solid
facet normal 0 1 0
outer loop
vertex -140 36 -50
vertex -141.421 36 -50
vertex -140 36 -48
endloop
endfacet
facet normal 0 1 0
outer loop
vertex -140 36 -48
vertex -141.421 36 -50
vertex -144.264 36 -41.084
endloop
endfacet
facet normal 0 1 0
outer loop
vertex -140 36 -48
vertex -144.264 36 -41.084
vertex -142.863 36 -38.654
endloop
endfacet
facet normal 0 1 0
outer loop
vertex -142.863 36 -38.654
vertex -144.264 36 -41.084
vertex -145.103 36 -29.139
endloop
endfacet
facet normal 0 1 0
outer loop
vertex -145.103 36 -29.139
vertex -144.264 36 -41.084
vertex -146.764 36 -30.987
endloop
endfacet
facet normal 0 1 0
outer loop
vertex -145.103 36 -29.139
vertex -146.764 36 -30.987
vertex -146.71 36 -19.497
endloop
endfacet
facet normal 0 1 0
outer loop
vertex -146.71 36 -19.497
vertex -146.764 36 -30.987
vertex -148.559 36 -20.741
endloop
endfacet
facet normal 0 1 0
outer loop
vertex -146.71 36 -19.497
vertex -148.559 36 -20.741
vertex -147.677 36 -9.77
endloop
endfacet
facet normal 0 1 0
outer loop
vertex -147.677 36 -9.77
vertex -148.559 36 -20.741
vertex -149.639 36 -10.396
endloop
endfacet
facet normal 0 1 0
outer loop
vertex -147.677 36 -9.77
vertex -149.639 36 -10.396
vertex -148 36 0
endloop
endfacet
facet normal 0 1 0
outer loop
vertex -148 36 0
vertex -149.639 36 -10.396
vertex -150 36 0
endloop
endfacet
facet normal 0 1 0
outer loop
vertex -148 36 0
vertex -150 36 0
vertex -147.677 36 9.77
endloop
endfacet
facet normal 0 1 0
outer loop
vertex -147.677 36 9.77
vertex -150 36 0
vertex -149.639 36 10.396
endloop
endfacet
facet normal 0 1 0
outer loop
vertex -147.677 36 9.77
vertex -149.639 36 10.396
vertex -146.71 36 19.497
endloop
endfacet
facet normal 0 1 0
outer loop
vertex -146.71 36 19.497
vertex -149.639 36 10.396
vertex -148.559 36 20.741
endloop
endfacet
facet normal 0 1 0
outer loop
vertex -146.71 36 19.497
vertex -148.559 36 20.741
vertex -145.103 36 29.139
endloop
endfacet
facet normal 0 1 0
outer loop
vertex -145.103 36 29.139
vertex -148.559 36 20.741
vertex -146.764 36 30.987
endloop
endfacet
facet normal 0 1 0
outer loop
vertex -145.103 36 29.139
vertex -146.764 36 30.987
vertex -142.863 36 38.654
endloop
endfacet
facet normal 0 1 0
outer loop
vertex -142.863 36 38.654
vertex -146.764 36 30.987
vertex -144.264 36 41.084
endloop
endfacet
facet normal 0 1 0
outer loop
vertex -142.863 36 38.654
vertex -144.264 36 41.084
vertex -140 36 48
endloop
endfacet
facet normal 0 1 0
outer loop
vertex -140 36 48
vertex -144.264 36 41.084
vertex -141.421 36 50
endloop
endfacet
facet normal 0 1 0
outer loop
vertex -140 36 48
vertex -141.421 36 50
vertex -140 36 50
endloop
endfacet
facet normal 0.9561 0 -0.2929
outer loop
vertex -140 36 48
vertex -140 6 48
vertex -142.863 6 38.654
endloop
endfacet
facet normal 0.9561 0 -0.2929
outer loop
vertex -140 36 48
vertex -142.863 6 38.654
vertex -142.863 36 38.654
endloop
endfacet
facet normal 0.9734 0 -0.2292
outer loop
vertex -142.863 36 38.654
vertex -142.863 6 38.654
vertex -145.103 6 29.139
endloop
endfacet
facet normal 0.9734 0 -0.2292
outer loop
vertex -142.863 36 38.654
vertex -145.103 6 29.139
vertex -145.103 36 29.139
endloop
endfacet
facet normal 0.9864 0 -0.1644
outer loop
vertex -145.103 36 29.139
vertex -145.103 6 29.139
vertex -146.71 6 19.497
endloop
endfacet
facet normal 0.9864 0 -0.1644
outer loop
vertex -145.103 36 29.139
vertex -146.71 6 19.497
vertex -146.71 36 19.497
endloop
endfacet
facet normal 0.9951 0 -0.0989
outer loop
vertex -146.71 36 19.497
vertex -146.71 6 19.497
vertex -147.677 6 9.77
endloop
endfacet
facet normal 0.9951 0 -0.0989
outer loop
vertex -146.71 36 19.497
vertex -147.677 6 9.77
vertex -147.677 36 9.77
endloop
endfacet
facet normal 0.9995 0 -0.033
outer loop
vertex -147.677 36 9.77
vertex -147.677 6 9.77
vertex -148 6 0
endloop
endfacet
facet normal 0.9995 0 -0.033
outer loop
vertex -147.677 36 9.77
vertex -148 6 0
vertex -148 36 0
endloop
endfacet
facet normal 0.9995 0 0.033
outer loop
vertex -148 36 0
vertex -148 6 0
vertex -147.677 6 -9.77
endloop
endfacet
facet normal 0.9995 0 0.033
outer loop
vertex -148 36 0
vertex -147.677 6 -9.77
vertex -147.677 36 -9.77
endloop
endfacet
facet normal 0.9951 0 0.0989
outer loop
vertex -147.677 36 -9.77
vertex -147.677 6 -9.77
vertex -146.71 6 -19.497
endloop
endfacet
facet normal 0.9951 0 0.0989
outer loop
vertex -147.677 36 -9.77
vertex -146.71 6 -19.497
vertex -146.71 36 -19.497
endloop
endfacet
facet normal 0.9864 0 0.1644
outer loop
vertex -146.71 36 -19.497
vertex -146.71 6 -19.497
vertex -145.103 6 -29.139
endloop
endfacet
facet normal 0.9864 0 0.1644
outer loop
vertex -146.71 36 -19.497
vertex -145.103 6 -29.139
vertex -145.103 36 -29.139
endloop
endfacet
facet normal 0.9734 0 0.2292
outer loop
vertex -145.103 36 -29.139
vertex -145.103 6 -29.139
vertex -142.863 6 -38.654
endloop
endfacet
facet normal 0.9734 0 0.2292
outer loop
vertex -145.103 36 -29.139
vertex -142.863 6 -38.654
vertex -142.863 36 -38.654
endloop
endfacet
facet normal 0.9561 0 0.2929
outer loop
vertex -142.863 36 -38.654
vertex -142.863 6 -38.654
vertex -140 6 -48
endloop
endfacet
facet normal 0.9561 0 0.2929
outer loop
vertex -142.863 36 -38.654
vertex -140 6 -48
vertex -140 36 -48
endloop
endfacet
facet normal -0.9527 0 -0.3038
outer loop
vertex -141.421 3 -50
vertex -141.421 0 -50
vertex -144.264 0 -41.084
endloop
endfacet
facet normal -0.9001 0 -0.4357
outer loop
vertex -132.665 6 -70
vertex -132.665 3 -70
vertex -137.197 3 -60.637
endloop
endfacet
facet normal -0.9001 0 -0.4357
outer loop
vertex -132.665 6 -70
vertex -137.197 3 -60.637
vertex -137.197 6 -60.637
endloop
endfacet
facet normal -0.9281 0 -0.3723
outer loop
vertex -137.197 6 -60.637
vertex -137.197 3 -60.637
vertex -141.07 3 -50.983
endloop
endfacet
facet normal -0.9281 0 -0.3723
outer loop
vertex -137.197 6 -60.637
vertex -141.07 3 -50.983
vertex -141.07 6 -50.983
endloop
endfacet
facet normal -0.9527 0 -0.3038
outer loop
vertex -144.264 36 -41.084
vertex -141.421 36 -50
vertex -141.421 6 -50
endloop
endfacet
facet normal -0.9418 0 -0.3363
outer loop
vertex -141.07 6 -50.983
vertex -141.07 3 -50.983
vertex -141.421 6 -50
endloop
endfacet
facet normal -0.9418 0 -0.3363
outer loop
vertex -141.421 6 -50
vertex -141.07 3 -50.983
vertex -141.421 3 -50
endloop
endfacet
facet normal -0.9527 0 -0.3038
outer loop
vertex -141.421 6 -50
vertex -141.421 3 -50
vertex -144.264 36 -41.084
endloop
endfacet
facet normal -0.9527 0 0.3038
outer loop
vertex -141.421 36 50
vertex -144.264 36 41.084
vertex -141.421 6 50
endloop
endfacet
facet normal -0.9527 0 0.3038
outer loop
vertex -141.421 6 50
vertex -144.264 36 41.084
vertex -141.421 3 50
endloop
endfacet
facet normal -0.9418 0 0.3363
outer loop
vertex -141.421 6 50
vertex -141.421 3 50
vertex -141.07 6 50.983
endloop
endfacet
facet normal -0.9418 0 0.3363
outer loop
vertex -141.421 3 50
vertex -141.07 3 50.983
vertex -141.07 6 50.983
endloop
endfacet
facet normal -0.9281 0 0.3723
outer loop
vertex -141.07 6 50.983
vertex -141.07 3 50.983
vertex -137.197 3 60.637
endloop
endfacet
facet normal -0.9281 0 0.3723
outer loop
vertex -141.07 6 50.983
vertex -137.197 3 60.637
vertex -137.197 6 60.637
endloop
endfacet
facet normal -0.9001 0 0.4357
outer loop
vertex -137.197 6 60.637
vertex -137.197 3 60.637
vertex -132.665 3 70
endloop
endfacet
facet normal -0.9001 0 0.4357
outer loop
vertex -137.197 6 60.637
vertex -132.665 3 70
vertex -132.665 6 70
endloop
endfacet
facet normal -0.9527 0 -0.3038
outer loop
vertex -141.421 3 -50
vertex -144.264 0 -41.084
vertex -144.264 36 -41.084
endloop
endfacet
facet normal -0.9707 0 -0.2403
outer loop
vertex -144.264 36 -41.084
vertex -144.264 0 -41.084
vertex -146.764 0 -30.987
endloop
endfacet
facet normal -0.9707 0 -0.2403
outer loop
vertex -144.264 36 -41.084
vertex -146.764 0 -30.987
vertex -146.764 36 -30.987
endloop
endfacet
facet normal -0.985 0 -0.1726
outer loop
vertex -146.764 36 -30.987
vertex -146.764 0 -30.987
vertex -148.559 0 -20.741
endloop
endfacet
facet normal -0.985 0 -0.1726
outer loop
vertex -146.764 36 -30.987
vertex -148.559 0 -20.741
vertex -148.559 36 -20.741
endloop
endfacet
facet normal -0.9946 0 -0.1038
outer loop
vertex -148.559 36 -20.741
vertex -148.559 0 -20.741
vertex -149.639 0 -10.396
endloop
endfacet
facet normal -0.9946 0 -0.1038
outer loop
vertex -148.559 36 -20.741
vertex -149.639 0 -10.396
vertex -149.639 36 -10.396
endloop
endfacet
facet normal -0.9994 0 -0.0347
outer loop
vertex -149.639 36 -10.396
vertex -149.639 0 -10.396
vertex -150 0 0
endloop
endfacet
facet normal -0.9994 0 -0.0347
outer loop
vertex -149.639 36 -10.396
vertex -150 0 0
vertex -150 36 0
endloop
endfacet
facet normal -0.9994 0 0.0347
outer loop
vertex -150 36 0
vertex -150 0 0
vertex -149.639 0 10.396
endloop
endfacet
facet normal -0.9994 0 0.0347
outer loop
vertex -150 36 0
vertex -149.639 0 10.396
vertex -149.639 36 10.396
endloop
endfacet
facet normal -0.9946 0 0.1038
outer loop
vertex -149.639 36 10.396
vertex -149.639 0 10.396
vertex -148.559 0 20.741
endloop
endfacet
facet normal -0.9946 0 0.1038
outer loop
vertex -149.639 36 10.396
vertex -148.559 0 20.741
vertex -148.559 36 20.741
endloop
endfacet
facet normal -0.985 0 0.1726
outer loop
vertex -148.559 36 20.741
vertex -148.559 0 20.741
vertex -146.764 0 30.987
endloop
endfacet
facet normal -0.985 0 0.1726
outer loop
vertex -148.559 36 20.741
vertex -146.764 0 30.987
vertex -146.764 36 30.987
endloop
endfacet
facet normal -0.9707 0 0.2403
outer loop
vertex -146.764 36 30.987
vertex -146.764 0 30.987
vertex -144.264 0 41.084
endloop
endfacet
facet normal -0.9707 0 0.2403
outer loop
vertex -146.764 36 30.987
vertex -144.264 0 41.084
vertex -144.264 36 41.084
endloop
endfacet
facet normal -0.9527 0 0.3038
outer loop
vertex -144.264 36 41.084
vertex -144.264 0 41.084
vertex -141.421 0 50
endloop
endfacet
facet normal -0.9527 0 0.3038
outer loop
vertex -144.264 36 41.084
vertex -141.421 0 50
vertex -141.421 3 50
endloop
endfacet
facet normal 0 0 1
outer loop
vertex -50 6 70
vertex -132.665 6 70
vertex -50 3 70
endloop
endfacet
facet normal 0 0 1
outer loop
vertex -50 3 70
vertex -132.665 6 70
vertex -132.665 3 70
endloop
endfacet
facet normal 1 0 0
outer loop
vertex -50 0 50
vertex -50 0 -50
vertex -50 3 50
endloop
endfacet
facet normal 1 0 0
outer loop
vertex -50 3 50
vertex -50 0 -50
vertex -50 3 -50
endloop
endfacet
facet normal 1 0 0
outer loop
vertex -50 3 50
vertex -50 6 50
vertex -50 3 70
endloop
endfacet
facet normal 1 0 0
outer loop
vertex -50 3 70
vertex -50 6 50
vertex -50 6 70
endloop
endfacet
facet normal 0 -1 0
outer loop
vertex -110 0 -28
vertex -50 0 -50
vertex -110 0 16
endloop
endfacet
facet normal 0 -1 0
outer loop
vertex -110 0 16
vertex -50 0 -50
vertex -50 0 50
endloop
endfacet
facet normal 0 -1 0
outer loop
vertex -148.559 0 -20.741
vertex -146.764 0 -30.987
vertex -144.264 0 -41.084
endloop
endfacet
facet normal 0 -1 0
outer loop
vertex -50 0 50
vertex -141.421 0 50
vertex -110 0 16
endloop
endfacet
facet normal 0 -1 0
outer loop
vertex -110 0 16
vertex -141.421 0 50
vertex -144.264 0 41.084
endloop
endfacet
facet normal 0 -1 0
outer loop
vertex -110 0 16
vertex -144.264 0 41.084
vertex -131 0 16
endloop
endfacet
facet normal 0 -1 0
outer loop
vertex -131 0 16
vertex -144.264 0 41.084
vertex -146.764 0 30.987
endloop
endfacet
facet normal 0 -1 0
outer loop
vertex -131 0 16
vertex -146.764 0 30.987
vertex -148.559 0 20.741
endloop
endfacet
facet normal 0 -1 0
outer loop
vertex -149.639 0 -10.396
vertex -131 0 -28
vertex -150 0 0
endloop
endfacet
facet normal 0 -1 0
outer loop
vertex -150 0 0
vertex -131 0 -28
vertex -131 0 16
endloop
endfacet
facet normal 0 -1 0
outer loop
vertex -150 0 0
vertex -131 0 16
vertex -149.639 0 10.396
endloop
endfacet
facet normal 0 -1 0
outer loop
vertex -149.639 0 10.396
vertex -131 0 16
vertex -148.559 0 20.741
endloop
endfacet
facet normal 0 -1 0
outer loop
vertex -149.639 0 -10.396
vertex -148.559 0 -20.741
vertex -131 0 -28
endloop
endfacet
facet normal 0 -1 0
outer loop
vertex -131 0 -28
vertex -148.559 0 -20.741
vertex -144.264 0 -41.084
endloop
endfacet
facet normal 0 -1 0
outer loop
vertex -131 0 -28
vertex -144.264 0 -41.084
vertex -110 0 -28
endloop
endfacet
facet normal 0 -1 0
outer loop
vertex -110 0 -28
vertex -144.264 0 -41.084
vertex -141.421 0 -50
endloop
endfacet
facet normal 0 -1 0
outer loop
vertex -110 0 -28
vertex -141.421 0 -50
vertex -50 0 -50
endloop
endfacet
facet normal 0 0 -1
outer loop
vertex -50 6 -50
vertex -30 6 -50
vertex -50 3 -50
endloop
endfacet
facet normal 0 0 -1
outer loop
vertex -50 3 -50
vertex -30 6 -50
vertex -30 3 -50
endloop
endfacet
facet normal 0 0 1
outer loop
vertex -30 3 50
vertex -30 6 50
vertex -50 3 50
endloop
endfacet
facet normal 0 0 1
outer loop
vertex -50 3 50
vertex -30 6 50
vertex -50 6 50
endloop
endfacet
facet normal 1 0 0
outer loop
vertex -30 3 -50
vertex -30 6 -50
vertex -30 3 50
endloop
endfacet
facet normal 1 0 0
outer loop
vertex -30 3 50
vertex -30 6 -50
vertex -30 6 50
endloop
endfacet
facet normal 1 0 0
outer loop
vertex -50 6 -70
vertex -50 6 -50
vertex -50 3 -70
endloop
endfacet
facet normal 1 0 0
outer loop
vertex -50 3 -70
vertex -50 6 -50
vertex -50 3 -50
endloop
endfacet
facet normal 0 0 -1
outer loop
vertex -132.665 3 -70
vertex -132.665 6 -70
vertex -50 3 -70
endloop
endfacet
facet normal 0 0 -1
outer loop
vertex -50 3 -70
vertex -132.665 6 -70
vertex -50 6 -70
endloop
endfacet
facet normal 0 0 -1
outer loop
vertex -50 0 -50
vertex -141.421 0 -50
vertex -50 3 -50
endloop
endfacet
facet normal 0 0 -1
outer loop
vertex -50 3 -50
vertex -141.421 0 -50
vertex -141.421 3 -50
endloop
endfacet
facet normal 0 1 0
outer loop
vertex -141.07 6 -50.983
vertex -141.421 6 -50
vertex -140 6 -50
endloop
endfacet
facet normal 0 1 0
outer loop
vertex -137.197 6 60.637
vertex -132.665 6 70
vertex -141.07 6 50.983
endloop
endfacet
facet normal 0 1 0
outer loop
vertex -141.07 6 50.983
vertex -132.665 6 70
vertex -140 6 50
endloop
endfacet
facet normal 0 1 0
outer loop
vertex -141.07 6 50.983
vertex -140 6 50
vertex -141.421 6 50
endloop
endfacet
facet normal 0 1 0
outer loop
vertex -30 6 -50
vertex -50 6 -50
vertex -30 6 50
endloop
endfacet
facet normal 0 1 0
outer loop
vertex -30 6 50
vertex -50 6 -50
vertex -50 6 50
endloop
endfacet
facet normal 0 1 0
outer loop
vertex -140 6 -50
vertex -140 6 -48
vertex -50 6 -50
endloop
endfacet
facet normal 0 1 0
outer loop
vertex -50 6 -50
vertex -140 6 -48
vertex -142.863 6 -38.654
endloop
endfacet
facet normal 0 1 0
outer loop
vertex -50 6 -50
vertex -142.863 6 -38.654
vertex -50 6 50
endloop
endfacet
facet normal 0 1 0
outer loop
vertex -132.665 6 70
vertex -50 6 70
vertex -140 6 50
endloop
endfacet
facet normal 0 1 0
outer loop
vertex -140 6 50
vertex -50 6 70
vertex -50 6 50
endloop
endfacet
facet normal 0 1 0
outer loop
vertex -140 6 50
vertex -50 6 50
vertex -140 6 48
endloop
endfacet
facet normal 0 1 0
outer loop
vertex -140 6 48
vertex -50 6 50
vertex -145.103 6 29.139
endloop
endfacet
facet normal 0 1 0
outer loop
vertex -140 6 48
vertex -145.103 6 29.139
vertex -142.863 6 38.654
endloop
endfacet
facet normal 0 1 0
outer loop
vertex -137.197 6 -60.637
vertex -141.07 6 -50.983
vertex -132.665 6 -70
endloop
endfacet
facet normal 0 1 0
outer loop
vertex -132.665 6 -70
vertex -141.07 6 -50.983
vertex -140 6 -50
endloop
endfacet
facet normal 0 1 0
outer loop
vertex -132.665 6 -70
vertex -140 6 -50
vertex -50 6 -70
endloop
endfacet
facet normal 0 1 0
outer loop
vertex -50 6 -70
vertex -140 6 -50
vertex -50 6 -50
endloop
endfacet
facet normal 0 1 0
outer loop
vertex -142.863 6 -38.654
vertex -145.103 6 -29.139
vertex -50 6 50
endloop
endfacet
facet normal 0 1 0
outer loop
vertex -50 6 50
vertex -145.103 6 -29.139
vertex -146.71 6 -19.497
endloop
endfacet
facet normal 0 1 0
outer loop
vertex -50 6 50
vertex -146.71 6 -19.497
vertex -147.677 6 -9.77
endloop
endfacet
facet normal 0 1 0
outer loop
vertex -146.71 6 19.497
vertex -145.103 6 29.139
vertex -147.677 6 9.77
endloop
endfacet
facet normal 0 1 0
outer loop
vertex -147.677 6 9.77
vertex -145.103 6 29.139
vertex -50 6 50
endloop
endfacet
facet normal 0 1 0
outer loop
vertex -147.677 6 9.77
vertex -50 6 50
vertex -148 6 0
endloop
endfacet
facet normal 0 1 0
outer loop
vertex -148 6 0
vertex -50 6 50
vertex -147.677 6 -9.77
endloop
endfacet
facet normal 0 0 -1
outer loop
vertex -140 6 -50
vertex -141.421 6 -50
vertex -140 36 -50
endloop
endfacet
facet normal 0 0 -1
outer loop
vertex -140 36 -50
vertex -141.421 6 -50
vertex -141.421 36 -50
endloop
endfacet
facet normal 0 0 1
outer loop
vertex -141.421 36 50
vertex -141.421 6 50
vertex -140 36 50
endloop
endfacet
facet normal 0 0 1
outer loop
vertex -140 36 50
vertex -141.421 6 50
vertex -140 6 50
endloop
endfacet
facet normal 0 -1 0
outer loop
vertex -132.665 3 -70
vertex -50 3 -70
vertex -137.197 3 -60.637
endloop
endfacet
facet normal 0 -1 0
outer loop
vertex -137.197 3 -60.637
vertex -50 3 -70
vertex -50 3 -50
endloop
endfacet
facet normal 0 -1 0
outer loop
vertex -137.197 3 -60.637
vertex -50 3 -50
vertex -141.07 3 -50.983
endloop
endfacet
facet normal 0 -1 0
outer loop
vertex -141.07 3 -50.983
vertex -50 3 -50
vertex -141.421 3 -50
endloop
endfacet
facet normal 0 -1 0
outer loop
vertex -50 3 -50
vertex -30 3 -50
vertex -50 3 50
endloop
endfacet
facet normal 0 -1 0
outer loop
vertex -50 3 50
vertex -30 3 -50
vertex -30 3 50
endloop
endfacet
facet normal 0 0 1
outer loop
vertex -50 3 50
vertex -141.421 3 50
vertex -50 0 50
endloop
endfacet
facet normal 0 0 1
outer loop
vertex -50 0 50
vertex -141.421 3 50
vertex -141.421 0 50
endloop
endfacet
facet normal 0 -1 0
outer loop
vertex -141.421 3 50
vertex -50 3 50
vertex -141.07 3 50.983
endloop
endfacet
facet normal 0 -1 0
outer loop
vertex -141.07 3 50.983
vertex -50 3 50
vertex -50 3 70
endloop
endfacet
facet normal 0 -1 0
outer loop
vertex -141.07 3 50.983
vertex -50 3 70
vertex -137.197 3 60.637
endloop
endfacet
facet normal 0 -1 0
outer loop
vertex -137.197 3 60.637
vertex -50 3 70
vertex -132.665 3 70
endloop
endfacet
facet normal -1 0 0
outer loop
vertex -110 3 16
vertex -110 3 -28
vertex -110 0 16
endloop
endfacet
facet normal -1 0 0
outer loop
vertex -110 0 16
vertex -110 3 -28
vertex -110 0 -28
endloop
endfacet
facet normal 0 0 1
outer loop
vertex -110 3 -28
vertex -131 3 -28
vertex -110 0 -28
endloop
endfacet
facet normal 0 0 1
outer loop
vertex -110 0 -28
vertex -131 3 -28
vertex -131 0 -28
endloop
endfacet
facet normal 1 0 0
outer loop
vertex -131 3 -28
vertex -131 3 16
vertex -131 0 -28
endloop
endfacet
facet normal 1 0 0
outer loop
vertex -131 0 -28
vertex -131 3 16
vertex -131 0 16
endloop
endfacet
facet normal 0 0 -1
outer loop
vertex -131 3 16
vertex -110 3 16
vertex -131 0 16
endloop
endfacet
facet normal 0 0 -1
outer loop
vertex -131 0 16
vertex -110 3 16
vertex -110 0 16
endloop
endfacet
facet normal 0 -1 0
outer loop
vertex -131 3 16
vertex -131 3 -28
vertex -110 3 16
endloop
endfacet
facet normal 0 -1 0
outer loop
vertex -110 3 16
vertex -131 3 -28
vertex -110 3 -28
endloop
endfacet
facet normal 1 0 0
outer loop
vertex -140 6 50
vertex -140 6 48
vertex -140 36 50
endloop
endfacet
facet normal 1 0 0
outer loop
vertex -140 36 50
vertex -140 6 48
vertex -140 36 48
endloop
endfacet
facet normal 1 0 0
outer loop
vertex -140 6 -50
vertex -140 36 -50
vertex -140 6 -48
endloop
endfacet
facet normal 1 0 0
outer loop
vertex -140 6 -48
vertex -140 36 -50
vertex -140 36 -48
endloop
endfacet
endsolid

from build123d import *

# Parameters (mm, degrees)
BOSS_EXTRUDE1_DEPTH = 6
BOSS_EXTRUDE2_DEPTH = 30
SKETCH3_W           = 20
SKETCH3_H           = 100
CUT_EXTRUDE1_DEPTH  = 3
SHELL1_START        = 2
SHELL1_DEPTH        = 32
SHELL1_START_2      = 5
SHELL1_2_OUTLINE_W  = 2
SHELL1_2_OUTLINE_H  = 96
SHELL1_2_DEPTH      = 29
BOSS_EXTRUDE3_DEPTH = 6
CUT_EXTRUDE2_START  = -2
CUT_EXTRUDE2_DEPTH  = 2
SKETCH8_W           = 21
SKETCH8_H           = 44
CUT_EXTRUDE3_DEPTH  = 3
SKETCH9_W           = 90
SKETCH9_H           = 30
CUT_EXTRUDE4_DEPTH  = 196.437969699


# Read off the part's stored shape, not the designer's step: Shell1
with BuildPart() as part:
    # Sketch1 → Boss-Extrude1 (new body)
    with BuildSketch(Plane(origin=(0, 0, 0), x_dir=(1, 0, 0), z_dir=(0, 1, 0))):
        with BuildLine():
            Line((-50, 50), (-141.421356237, 50))
            ThreePointArc((-141.421356237, 50), (-150, 0), (-141.421356237, -50))
            Line((-141.421356237, -50), (-50, -50))
            Line((-50, -50), (-50, 0))
            Line((-50, 0), (-50, 50))
        make_face()
        with BuildLine():
            Line((-50, -50), (-141.421356237, -50))
            ThreePointArc((-141.421356237, -50), (-137.407538074, -60.159525267), (-132.664991614, -70))
            Line((-132.664991614, -70), (-50, -70))
            Line((-50, -70), (-50, -50))
        make_face()
        Polygon((-30, 50), (-50, 50), (-50, 0), (-50, -50), (-30, -50), (-30, 0), align=None)
        with BuildLine():
            Line((-50, 70), (-132.664991614, 70))
            ThreePointArc((-132.664991614, 70), (-137.407538074, 60.159525267), (-141.421356237, 50))
            Line((-141.421356237, 50), (-50, 50))
            Line((-50, 50), (-50, 70))
        make_face()
    extrude(amount=BOSS_EXTRUDE1_DEPTH)

    # Sketch2 → Boss-Extrude2 (add)
    with BuildSketch(Plane(origin=(0, 6, 0), x_dir=(-1, 0, 0), z_dir=(0, 1, 0))):
        with BuildLine():
            Line((50, 50), (50, -50))
            Line((50, -50), (141.421356237, -50))
            ThreePointArc((141.421356237, -50), (150, 0), (141.421356237, 50))
            Line((141.421356237, 50), (50, 50))
        make_face()
    extrude(amount=BOSS_EXTRUDE2_DEPTH)

    # Sketch3 → Cut-Extrude1 (cut)
    with BuildSketch(Plane.XZ):
        with BuildLine():
            Line((-50, -70), (-50, -50))
            Line((-50, -50), (-141.421356237, -50))
            ThreePointArc((-141.421356237, -50), (-137.407538074, -60.159525267), (-132.664991614, -70))
            Line((-132.664991614, -70), (-50, -70))
        make_face()
        with Locations((-40, 0)):
            Rectangle(SKETCH3_W, SKETCH3_H)
        with BuildLine():
            Line((-141.421356237, 50), (-50, 50))
            Line((-50, 50), (-50, 70))
            Line((-50, 70), (-132.664991614, 70))
            ThreePointArc((-132.664991614, 70), (-137.407538074, 60.159525267), (-141.421356237, 50))
        make_face()
    extrude(amount=-CUT_EXTRUDE1_DEPTH, mode=Mode.SUBTRACT)

    # Shell1 outline → Shell1 (cut)
    with BuildSketch(Plane(origin=(0, 0, 0), x_dir=(1, 0, 0), z_dir=(0, 1, 0)).offset(SHELL1_START)):
        with BuildLine():
            Line((-140, -48), (-52, -48))
            Line((-52, -48), (-52, 48))
            Line((-52, 48), (-140, 48))
            ThreePointArc((-140, 48), (-148, 0), (-140, -48))
        make_face()
    extrude(amount=SHELL1_DEPTH, mode=Mode.SUBTRACT)

    # Shell1 2 outline → Shell1 2 (cut)
    with BuildSketch(Plane(origin=(0, 0, 0), x_dir=(1, 0, 0), z_dir=(0, 1, 0)).offset(SHELL1_START_2)):
        with Locations((-51, 0)):
            Rectangle(SHELL1_2_OUTLINE_W, SHELL1_2_OUTLINE_H)
    extrude(amount=SHELL1_2_DEPTH, mode=Mode.SUBTRACT)

    # Sketch6 → Boss-Extrude3 (add)
    with BuildSketch(Plane.XZ):
        with BuildLine():
            Line((-141.421356237, 50), (-50, 50))
            Line((-50, 50), (-50, -50))
            Line((-50, -50), (-141.421356237, -50))
            ThreePointArc((-141.421356237, -50), (-150, 0), (-141.421356237, 50))
        make_face()
    extrude(amount=-BOSS_EXTRUDE3_DEPTH)

    # Sketch7 → Cut-Extrude2 (cut)
    with BuildSketch(Plane(origin=(0, 36, 0), x_dir=(-1, 0, 0), z_dir=(0, 1, 0)).offset(CUT_EXTRUDE2_START)):
        with BuildLine():
            Line((50, -48), (140, -48))
            ThreePointArc((140, -48), (148, 0), (140, 48))
            Line((140, 48), (50, 48))
            Line((50, 48), (50, -48))
        make_face()
    extrude(amount=CUT_EXTRUDE2_DEPTH, mode=Mode.SUBTRACT)

    # Sketch8 → Cut-Extrude3 (cut)
    with BuildSketch(Plane.XZ):
        with Locations((-120.5, -6)):
            Rectangle(SKETCH8_W, SKETCH8_H)
    extrude(amount=-CUT_EXTRUDE3_DEPTH, mode=Mode.SUBTRACT)

    # Sketch9 → Cut-Extrude4 (cut, through all)
    with BuildSketch(Plane.XY.offset(50)):
        with Locations((-95, 21)):
            Rectangle(SKETCH9_W, SKETCH9_H)
    extrude(amount=-CUT_EXTRUDE4_DEPTH, mode=Mode.SUBTRACT)


solid = part.part
